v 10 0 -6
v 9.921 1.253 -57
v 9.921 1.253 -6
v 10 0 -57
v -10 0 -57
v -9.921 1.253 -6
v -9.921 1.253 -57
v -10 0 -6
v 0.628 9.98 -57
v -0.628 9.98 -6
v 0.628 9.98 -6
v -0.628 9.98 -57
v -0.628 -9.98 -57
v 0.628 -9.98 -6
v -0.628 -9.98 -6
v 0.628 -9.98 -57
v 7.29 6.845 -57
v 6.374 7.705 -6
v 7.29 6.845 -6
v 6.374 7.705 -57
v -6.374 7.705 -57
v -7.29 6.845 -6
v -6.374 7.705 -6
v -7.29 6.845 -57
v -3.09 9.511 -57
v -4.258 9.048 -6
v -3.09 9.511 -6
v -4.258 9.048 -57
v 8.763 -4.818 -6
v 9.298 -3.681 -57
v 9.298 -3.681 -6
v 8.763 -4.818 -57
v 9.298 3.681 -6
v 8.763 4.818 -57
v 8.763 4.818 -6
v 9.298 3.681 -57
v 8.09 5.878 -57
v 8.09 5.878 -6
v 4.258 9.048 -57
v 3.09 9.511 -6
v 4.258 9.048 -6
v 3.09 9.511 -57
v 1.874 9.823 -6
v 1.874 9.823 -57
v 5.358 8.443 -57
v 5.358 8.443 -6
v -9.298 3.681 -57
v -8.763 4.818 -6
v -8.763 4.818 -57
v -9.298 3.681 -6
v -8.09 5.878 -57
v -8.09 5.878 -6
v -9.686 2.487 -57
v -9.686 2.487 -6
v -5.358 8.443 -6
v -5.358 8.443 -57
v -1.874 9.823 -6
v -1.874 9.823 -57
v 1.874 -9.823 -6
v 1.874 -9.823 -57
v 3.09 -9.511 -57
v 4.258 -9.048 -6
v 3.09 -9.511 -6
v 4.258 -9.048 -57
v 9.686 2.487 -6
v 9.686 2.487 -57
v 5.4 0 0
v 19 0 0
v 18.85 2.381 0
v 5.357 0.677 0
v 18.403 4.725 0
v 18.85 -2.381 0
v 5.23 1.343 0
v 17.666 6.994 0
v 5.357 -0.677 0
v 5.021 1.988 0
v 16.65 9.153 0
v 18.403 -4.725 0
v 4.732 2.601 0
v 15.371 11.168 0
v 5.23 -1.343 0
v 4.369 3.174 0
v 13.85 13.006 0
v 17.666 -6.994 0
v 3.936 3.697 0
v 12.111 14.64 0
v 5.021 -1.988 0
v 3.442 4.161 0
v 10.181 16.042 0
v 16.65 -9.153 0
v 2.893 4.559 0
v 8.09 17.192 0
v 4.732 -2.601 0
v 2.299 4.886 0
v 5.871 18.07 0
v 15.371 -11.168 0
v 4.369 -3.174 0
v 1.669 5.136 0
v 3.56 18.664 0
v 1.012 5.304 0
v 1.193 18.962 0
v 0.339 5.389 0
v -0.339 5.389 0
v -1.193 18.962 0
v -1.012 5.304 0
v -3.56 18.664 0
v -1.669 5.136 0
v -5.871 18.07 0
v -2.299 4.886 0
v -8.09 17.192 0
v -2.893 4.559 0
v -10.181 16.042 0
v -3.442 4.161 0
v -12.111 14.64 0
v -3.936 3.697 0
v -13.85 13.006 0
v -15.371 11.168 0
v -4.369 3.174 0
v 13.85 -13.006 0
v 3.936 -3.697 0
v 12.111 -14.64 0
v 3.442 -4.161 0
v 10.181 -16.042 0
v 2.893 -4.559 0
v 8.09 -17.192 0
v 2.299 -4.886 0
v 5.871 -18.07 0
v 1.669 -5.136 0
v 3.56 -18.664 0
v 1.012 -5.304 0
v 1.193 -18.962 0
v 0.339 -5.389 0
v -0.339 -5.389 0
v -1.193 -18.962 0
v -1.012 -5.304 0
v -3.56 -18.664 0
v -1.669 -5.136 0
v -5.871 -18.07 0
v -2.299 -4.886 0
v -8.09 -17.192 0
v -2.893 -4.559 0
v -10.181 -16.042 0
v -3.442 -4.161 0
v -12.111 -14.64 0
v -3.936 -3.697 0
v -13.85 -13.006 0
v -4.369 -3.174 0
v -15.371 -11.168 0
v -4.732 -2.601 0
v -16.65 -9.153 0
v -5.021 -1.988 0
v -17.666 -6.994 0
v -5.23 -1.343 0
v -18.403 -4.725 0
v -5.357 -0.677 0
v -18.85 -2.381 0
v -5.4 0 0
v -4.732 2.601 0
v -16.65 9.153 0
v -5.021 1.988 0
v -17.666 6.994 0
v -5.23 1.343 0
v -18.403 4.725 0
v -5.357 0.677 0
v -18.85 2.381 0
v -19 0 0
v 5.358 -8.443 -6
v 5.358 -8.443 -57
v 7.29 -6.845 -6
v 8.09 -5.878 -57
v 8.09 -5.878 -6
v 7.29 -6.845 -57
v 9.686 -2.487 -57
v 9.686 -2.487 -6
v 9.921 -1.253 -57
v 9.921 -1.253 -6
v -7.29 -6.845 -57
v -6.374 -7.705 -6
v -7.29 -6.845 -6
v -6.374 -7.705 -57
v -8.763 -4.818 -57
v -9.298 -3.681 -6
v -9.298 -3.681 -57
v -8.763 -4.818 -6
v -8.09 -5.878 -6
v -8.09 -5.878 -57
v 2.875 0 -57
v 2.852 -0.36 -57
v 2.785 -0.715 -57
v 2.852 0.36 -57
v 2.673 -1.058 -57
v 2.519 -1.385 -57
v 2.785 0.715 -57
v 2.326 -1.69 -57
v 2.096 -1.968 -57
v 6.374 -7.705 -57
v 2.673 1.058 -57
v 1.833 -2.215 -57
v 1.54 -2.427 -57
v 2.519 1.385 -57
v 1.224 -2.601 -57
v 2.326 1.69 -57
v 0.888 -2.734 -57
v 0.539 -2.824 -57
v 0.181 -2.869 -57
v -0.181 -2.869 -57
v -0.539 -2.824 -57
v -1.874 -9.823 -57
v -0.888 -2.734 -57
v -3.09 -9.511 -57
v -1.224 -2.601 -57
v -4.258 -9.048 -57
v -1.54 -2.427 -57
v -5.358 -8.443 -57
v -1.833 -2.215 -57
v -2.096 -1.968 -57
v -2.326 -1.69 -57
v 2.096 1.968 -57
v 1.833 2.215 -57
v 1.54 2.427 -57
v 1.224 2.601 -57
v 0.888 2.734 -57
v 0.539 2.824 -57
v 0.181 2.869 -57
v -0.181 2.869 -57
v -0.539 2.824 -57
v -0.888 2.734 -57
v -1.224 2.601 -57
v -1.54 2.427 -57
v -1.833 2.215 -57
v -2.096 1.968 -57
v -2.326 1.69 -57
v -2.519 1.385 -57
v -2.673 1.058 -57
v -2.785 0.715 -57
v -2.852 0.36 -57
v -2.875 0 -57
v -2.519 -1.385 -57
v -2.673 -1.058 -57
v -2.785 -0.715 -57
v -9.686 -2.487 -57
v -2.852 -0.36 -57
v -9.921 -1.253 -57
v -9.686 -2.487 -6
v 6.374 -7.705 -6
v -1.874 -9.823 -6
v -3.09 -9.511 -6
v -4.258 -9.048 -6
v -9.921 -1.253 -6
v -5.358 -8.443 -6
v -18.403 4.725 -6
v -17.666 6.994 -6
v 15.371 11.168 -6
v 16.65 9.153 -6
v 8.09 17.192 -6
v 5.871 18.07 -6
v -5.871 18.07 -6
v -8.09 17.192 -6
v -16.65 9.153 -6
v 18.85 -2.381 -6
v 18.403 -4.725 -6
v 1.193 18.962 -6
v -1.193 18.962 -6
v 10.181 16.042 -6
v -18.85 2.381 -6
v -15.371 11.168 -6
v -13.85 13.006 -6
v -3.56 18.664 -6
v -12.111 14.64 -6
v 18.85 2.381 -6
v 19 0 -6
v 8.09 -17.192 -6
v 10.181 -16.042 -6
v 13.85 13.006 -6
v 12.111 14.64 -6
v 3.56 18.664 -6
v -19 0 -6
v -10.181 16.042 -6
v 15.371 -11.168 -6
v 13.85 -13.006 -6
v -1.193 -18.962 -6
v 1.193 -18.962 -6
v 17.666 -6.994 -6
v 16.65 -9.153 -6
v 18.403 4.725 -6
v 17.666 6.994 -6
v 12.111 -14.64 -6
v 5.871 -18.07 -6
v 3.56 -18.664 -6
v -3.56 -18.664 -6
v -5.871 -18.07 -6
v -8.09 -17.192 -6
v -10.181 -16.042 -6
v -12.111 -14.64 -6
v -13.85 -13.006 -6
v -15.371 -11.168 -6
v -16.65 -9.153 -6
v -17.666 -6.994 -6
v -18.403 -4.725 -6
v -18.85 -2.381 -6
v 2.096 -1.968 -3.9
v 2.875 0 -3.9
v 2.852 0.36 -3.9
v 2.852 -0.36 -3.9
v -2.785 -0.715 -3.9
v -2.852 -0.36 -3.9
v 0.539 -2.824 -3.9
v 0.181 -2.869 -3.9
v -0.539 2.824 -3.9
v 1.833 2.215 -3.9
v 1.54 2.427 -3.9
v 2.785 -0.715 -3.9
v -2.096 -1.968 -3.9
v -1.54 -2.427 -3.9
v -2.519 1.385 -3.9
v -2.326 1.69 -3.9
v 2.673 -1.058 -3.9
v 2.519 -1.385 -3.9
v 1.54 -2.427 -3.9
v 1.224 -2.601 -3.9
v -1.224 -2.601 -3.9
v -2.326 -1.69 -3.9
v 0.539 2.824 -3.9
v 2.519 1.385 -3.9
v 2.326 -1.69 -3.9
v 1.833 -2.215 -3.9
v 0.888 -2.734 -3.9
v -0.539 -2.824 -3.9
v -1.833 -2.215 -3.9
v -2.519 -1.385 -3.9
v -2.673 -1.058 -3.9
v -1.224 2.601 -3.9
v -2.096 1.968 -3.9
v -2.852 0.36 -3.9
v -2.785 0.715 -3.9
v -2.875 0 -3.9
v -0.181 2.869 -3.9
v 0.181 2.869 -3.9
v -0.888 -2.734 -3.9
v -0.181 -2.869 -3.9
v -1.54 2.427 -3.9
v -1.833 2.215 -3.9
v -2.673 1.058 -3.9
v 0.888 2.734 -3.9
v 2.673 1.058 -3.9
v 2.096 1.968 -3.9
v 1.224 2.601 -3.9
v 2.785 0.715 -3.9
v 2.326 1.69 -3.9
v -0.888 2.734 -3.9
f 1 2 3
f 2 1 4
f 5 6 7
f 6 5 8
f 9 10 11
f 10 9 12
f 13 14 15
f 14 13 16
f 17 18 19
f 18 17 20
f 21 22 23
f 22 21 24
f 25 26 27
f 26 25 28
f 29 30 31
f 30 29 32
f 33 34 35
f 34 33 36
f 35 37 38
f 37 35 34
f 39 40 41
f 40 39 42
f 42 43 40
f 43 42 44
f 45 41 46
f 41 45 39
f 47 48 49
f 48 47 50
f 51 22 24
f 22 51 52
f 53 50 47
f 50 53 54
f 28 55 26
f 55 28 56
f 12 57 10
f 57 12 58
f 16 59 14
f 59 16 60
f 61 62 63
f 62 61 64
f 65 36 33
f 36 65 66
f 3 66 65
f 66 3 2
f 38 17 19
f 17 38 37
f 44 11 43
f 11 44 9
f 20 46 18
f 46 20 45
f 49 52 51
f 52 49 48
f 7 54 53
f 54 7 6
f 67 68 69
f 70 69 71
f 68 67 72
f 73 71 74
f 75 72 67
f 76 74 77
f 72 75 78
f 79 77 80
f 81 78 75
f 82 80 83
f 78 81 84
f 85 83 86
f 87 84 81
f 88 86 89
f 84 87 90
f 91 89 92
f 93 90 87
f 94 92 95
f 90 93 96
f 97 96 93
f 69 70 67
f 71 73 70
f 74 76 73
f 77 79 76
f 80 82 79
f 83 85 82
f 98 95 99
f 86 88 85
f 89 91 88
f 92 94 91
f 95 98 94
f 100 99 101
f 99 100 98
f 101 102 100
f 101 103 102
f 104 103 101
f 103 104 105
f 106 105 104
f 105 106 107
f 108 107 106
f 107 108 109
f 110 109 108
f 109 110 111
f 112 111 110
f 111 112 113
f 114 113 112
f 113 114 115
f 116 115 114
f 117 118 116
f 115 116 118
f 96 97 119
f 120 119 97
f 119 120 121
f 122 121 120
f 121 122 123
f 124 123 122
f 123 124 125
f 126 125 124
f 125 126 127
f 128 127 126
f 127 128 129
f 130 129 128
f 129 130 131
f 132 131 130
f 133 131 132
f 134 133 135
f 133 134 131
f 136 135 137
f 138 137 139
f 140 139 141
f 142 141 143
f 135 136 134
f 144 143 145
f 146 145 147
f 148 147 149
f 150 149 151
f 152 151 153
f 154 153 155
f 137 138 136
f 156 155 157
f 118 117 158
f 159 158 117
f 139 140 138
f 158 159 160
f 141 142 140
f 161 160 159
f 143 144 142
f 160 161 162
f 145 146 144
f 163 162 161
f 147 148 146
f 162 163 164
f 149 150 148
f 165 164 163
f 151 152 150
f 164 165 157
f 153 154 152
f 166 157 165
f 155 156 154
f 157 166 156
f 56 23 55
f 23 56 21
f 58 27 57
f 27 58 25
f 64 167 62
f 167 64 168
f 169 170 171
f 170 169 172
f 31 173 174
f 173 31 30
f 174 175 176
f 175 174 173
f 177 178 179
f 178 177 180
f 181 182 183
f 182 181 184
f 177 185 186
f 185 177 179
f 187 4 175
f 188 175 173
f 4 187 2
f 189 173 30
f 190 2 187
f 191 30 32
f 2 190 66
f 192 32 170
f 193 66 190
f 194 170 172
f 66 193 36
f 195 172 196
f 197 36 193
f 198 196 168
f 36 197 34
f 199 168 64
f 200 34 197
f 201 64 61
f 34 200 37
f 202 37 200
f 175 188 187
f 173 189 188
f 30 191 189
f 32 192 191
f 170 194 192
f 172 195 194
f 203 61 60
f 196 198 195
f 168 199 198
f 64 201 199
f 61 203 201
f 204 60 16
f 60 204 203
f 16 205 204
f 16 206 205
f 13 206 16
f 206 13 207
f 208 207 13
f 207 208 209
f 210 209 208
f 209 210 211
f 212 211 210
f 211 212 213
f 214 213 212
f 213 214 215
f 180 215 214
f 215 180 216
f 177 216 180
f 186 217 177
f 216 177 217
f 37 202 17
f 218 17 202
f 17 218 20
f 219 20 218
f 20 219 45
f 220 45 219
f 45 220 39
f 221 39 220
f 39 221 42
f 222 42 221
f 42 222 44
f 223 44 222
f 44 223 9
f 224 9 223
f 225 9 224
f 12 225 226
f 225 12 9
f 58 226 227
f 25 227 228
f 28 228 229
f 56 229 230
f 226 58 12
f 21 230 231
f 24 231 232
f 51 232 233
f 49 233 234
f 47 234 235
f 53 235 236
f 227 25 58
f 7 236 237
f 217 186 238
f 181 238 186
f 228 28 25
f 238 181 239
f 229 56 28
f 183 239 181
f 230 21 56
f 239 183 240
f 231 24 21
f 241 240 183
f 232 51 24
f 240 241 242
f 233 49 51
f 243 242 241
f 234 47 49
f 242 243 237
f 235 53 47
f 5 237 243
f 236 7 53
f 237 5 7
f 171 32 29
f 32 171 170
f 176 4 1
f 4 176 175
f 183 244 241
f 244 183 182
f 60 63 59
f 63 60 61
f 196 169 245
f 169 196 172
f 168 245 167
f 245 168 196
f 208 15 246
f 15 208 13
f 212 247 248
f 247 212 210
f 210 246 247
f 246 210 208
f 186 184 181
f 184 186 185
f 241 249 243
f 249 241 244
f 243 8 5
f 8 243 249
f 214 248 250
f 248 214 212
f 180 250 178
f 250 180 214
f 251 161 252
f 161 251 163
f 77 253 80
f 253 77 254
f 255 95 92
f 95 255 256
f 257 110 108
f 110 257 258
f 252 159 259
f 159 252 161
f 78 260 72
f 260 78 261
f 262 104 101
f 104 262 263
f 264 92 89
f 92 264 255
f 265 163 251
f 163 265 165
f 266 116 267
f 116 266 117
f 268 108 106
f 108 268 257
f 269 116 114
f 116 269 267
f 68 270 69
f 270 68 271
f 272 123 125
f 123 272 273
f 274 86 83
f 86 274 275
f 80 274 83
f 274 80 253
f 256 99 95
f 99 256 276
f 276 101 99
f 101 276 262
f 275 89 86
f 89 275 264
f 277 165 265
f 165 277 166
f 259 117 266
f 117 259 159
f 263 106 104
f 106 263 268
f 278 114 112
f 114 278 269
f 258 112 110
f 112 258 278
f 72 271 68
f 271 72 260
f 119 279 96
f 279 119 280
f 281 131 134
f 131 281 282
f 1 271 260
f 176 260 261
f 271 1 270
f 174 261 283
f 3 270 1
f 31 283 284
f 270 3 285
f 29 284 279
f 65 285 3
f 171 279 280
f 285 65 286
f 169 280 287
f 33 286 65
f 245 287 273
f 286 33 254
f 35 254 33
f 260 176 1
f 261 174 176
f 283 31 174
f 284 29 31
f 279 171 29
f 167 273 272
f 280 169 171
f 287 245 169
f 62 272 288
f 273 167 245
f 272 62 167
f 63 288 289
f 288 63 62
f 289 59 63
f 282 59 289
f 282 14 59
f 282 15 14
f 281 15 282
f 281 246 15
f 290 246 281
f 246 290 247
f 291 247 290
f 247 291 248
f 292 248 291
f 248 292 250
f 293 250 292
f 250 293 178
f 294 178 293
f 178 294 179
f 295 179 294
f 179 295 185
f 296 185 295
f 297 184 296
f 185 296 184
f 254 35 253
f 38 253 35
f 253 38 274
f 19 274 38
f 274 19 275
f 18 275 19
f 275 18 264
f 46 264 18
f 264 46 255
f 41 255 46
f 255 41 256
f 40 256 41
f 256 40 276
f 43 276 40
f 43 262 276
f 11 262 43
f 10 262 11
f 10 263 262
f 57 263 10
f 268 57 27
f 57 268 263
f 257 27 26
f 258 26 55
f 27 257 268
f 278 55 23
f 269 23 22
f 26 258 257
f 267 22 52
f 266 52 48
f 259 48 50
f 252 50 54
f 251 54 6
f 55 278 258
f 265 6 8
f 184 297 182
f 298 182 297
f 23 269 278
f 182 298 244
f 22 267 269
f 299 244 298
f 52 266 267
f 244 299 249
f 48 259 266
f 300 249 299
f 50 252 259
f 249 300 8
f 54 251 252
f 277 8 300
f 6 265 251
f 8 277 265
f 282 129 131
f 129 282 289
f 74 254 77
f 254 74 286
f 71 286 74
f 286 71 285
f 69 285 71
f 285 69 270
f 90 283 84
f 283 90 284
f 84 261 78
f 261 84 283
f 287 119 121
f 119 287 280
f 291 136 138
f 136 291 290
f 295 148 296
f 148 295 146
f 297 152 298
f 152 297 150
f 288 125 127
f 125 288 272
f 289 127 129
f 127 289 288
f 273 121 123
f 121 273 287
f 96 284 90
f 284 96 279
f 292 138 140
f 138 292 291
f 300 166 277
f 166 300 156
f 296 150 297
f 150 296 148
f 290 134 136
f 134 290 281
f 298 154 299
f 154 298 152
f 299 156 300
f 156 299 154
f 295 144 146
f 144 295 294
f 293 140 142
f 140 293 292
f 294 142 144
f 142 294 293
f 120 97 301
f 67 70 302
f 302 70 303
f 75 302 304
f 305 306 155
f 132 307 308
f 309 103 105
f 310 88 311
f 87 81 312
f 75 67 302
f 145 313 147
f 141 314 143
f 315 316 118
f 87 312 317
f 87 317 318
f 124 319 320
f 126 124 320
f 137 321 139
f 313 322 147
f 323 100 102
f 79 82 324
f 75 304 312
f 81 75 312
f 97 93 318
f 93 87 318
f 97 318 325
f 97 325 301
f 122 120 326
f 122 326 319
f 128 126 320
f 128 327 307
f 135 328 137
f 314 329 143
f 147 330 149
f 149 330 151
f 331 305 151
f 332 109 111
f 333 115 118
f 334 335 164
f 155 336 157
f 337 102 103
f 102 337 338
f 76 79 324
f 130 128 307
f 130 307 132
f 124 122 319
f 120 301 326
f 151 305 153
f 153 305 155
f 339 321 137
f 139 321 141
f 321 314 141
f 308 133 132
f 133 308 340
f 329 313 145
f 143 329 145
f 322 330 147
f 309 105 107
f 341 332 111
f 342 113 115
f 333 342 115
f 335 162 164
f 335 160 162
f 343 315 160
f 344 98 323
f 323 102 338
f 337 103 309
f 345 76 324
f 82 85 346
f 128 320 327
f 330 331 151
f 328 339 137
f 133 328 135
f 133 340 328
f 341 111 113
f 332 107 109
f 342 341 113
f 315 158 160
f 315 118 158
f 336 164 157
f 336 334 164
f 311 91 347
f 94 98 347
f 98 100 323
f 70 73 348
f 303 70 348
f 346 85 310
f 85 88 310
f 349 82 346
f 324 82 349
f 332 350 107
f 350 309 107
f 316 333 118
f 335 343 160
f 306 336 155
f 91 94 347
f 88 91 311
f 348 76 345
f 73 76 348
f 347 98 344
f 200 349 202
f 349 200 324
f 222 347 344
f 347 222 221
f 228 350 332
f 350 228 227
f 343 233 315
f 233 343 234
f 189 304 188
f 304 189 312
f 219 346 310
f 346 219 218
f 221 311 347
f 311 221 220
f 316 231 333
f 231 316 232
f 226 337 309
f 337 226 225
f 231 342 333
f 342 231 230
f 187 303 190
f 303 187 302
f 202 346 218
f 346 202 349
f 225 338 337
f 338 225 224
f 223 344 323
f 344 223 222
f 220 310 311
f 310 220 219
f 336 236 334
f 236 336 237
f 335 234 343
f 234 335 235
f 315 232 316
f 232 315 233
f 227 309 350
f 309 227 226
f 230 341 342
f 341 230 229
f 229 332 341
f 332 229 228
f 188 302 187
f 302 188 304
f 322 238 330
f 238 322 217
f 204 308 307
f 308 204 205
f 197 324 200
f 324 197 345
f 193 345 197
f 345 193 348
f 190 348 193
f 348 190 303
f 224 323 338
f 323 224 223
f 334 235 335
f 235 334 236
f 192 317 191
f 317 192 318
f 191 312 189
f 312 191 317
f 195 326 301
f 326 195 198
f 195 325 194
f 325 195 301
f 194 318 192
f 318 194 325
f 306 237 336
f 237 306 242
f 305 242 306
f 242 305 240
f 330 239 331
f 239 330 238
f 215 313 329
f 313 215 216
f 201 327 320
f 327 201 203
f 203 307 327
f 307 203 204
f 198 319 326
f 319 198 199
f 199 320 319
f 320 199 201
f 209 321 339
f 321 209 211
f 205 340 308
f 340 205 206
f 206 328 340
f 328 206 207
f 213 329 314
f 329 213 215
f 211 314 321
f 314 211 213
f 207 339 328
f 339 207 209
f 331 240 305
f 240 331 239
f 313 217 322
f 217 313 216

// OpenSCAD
$fn = 50;


difference() {
	union() {
		translate(v = [0, 0, -57.0000000000]) {
			cylinder(h = 57, r = 10.0000000000);
		}
		translate(v = [0, 0, -6.0000000000]) {
			cylinder(h = 6, r = 19.0000000000);
		}
	}
	union() {
		translate(v = [0, 0, 0]) {
			rotate(a = [0, 0, 0]) {
				difference() {
					union() {
						#translate(v = [0, 0, -57.0000000000]) {
							cylinder(h = 57, r = 2.6000000000);
						}
						#translate(v = [0, 0, -3.9000000000]) {
							cylinder(h = 3.9000000000, r = 10.0000000000, r1 = 2.8750000000, r2 = 5.4000000000);
						}
						#translate(v = [0, 0, -57.0000000000]) {
							cylinder(h = 57, r = 2.8750000000);
						}
						#translate(v = [0, 0, -57.0000000000]) {
							cylinder(h = 57, r = 2.6000000000);
						}
					}
					union();
				}
			}
		}
	}
}
